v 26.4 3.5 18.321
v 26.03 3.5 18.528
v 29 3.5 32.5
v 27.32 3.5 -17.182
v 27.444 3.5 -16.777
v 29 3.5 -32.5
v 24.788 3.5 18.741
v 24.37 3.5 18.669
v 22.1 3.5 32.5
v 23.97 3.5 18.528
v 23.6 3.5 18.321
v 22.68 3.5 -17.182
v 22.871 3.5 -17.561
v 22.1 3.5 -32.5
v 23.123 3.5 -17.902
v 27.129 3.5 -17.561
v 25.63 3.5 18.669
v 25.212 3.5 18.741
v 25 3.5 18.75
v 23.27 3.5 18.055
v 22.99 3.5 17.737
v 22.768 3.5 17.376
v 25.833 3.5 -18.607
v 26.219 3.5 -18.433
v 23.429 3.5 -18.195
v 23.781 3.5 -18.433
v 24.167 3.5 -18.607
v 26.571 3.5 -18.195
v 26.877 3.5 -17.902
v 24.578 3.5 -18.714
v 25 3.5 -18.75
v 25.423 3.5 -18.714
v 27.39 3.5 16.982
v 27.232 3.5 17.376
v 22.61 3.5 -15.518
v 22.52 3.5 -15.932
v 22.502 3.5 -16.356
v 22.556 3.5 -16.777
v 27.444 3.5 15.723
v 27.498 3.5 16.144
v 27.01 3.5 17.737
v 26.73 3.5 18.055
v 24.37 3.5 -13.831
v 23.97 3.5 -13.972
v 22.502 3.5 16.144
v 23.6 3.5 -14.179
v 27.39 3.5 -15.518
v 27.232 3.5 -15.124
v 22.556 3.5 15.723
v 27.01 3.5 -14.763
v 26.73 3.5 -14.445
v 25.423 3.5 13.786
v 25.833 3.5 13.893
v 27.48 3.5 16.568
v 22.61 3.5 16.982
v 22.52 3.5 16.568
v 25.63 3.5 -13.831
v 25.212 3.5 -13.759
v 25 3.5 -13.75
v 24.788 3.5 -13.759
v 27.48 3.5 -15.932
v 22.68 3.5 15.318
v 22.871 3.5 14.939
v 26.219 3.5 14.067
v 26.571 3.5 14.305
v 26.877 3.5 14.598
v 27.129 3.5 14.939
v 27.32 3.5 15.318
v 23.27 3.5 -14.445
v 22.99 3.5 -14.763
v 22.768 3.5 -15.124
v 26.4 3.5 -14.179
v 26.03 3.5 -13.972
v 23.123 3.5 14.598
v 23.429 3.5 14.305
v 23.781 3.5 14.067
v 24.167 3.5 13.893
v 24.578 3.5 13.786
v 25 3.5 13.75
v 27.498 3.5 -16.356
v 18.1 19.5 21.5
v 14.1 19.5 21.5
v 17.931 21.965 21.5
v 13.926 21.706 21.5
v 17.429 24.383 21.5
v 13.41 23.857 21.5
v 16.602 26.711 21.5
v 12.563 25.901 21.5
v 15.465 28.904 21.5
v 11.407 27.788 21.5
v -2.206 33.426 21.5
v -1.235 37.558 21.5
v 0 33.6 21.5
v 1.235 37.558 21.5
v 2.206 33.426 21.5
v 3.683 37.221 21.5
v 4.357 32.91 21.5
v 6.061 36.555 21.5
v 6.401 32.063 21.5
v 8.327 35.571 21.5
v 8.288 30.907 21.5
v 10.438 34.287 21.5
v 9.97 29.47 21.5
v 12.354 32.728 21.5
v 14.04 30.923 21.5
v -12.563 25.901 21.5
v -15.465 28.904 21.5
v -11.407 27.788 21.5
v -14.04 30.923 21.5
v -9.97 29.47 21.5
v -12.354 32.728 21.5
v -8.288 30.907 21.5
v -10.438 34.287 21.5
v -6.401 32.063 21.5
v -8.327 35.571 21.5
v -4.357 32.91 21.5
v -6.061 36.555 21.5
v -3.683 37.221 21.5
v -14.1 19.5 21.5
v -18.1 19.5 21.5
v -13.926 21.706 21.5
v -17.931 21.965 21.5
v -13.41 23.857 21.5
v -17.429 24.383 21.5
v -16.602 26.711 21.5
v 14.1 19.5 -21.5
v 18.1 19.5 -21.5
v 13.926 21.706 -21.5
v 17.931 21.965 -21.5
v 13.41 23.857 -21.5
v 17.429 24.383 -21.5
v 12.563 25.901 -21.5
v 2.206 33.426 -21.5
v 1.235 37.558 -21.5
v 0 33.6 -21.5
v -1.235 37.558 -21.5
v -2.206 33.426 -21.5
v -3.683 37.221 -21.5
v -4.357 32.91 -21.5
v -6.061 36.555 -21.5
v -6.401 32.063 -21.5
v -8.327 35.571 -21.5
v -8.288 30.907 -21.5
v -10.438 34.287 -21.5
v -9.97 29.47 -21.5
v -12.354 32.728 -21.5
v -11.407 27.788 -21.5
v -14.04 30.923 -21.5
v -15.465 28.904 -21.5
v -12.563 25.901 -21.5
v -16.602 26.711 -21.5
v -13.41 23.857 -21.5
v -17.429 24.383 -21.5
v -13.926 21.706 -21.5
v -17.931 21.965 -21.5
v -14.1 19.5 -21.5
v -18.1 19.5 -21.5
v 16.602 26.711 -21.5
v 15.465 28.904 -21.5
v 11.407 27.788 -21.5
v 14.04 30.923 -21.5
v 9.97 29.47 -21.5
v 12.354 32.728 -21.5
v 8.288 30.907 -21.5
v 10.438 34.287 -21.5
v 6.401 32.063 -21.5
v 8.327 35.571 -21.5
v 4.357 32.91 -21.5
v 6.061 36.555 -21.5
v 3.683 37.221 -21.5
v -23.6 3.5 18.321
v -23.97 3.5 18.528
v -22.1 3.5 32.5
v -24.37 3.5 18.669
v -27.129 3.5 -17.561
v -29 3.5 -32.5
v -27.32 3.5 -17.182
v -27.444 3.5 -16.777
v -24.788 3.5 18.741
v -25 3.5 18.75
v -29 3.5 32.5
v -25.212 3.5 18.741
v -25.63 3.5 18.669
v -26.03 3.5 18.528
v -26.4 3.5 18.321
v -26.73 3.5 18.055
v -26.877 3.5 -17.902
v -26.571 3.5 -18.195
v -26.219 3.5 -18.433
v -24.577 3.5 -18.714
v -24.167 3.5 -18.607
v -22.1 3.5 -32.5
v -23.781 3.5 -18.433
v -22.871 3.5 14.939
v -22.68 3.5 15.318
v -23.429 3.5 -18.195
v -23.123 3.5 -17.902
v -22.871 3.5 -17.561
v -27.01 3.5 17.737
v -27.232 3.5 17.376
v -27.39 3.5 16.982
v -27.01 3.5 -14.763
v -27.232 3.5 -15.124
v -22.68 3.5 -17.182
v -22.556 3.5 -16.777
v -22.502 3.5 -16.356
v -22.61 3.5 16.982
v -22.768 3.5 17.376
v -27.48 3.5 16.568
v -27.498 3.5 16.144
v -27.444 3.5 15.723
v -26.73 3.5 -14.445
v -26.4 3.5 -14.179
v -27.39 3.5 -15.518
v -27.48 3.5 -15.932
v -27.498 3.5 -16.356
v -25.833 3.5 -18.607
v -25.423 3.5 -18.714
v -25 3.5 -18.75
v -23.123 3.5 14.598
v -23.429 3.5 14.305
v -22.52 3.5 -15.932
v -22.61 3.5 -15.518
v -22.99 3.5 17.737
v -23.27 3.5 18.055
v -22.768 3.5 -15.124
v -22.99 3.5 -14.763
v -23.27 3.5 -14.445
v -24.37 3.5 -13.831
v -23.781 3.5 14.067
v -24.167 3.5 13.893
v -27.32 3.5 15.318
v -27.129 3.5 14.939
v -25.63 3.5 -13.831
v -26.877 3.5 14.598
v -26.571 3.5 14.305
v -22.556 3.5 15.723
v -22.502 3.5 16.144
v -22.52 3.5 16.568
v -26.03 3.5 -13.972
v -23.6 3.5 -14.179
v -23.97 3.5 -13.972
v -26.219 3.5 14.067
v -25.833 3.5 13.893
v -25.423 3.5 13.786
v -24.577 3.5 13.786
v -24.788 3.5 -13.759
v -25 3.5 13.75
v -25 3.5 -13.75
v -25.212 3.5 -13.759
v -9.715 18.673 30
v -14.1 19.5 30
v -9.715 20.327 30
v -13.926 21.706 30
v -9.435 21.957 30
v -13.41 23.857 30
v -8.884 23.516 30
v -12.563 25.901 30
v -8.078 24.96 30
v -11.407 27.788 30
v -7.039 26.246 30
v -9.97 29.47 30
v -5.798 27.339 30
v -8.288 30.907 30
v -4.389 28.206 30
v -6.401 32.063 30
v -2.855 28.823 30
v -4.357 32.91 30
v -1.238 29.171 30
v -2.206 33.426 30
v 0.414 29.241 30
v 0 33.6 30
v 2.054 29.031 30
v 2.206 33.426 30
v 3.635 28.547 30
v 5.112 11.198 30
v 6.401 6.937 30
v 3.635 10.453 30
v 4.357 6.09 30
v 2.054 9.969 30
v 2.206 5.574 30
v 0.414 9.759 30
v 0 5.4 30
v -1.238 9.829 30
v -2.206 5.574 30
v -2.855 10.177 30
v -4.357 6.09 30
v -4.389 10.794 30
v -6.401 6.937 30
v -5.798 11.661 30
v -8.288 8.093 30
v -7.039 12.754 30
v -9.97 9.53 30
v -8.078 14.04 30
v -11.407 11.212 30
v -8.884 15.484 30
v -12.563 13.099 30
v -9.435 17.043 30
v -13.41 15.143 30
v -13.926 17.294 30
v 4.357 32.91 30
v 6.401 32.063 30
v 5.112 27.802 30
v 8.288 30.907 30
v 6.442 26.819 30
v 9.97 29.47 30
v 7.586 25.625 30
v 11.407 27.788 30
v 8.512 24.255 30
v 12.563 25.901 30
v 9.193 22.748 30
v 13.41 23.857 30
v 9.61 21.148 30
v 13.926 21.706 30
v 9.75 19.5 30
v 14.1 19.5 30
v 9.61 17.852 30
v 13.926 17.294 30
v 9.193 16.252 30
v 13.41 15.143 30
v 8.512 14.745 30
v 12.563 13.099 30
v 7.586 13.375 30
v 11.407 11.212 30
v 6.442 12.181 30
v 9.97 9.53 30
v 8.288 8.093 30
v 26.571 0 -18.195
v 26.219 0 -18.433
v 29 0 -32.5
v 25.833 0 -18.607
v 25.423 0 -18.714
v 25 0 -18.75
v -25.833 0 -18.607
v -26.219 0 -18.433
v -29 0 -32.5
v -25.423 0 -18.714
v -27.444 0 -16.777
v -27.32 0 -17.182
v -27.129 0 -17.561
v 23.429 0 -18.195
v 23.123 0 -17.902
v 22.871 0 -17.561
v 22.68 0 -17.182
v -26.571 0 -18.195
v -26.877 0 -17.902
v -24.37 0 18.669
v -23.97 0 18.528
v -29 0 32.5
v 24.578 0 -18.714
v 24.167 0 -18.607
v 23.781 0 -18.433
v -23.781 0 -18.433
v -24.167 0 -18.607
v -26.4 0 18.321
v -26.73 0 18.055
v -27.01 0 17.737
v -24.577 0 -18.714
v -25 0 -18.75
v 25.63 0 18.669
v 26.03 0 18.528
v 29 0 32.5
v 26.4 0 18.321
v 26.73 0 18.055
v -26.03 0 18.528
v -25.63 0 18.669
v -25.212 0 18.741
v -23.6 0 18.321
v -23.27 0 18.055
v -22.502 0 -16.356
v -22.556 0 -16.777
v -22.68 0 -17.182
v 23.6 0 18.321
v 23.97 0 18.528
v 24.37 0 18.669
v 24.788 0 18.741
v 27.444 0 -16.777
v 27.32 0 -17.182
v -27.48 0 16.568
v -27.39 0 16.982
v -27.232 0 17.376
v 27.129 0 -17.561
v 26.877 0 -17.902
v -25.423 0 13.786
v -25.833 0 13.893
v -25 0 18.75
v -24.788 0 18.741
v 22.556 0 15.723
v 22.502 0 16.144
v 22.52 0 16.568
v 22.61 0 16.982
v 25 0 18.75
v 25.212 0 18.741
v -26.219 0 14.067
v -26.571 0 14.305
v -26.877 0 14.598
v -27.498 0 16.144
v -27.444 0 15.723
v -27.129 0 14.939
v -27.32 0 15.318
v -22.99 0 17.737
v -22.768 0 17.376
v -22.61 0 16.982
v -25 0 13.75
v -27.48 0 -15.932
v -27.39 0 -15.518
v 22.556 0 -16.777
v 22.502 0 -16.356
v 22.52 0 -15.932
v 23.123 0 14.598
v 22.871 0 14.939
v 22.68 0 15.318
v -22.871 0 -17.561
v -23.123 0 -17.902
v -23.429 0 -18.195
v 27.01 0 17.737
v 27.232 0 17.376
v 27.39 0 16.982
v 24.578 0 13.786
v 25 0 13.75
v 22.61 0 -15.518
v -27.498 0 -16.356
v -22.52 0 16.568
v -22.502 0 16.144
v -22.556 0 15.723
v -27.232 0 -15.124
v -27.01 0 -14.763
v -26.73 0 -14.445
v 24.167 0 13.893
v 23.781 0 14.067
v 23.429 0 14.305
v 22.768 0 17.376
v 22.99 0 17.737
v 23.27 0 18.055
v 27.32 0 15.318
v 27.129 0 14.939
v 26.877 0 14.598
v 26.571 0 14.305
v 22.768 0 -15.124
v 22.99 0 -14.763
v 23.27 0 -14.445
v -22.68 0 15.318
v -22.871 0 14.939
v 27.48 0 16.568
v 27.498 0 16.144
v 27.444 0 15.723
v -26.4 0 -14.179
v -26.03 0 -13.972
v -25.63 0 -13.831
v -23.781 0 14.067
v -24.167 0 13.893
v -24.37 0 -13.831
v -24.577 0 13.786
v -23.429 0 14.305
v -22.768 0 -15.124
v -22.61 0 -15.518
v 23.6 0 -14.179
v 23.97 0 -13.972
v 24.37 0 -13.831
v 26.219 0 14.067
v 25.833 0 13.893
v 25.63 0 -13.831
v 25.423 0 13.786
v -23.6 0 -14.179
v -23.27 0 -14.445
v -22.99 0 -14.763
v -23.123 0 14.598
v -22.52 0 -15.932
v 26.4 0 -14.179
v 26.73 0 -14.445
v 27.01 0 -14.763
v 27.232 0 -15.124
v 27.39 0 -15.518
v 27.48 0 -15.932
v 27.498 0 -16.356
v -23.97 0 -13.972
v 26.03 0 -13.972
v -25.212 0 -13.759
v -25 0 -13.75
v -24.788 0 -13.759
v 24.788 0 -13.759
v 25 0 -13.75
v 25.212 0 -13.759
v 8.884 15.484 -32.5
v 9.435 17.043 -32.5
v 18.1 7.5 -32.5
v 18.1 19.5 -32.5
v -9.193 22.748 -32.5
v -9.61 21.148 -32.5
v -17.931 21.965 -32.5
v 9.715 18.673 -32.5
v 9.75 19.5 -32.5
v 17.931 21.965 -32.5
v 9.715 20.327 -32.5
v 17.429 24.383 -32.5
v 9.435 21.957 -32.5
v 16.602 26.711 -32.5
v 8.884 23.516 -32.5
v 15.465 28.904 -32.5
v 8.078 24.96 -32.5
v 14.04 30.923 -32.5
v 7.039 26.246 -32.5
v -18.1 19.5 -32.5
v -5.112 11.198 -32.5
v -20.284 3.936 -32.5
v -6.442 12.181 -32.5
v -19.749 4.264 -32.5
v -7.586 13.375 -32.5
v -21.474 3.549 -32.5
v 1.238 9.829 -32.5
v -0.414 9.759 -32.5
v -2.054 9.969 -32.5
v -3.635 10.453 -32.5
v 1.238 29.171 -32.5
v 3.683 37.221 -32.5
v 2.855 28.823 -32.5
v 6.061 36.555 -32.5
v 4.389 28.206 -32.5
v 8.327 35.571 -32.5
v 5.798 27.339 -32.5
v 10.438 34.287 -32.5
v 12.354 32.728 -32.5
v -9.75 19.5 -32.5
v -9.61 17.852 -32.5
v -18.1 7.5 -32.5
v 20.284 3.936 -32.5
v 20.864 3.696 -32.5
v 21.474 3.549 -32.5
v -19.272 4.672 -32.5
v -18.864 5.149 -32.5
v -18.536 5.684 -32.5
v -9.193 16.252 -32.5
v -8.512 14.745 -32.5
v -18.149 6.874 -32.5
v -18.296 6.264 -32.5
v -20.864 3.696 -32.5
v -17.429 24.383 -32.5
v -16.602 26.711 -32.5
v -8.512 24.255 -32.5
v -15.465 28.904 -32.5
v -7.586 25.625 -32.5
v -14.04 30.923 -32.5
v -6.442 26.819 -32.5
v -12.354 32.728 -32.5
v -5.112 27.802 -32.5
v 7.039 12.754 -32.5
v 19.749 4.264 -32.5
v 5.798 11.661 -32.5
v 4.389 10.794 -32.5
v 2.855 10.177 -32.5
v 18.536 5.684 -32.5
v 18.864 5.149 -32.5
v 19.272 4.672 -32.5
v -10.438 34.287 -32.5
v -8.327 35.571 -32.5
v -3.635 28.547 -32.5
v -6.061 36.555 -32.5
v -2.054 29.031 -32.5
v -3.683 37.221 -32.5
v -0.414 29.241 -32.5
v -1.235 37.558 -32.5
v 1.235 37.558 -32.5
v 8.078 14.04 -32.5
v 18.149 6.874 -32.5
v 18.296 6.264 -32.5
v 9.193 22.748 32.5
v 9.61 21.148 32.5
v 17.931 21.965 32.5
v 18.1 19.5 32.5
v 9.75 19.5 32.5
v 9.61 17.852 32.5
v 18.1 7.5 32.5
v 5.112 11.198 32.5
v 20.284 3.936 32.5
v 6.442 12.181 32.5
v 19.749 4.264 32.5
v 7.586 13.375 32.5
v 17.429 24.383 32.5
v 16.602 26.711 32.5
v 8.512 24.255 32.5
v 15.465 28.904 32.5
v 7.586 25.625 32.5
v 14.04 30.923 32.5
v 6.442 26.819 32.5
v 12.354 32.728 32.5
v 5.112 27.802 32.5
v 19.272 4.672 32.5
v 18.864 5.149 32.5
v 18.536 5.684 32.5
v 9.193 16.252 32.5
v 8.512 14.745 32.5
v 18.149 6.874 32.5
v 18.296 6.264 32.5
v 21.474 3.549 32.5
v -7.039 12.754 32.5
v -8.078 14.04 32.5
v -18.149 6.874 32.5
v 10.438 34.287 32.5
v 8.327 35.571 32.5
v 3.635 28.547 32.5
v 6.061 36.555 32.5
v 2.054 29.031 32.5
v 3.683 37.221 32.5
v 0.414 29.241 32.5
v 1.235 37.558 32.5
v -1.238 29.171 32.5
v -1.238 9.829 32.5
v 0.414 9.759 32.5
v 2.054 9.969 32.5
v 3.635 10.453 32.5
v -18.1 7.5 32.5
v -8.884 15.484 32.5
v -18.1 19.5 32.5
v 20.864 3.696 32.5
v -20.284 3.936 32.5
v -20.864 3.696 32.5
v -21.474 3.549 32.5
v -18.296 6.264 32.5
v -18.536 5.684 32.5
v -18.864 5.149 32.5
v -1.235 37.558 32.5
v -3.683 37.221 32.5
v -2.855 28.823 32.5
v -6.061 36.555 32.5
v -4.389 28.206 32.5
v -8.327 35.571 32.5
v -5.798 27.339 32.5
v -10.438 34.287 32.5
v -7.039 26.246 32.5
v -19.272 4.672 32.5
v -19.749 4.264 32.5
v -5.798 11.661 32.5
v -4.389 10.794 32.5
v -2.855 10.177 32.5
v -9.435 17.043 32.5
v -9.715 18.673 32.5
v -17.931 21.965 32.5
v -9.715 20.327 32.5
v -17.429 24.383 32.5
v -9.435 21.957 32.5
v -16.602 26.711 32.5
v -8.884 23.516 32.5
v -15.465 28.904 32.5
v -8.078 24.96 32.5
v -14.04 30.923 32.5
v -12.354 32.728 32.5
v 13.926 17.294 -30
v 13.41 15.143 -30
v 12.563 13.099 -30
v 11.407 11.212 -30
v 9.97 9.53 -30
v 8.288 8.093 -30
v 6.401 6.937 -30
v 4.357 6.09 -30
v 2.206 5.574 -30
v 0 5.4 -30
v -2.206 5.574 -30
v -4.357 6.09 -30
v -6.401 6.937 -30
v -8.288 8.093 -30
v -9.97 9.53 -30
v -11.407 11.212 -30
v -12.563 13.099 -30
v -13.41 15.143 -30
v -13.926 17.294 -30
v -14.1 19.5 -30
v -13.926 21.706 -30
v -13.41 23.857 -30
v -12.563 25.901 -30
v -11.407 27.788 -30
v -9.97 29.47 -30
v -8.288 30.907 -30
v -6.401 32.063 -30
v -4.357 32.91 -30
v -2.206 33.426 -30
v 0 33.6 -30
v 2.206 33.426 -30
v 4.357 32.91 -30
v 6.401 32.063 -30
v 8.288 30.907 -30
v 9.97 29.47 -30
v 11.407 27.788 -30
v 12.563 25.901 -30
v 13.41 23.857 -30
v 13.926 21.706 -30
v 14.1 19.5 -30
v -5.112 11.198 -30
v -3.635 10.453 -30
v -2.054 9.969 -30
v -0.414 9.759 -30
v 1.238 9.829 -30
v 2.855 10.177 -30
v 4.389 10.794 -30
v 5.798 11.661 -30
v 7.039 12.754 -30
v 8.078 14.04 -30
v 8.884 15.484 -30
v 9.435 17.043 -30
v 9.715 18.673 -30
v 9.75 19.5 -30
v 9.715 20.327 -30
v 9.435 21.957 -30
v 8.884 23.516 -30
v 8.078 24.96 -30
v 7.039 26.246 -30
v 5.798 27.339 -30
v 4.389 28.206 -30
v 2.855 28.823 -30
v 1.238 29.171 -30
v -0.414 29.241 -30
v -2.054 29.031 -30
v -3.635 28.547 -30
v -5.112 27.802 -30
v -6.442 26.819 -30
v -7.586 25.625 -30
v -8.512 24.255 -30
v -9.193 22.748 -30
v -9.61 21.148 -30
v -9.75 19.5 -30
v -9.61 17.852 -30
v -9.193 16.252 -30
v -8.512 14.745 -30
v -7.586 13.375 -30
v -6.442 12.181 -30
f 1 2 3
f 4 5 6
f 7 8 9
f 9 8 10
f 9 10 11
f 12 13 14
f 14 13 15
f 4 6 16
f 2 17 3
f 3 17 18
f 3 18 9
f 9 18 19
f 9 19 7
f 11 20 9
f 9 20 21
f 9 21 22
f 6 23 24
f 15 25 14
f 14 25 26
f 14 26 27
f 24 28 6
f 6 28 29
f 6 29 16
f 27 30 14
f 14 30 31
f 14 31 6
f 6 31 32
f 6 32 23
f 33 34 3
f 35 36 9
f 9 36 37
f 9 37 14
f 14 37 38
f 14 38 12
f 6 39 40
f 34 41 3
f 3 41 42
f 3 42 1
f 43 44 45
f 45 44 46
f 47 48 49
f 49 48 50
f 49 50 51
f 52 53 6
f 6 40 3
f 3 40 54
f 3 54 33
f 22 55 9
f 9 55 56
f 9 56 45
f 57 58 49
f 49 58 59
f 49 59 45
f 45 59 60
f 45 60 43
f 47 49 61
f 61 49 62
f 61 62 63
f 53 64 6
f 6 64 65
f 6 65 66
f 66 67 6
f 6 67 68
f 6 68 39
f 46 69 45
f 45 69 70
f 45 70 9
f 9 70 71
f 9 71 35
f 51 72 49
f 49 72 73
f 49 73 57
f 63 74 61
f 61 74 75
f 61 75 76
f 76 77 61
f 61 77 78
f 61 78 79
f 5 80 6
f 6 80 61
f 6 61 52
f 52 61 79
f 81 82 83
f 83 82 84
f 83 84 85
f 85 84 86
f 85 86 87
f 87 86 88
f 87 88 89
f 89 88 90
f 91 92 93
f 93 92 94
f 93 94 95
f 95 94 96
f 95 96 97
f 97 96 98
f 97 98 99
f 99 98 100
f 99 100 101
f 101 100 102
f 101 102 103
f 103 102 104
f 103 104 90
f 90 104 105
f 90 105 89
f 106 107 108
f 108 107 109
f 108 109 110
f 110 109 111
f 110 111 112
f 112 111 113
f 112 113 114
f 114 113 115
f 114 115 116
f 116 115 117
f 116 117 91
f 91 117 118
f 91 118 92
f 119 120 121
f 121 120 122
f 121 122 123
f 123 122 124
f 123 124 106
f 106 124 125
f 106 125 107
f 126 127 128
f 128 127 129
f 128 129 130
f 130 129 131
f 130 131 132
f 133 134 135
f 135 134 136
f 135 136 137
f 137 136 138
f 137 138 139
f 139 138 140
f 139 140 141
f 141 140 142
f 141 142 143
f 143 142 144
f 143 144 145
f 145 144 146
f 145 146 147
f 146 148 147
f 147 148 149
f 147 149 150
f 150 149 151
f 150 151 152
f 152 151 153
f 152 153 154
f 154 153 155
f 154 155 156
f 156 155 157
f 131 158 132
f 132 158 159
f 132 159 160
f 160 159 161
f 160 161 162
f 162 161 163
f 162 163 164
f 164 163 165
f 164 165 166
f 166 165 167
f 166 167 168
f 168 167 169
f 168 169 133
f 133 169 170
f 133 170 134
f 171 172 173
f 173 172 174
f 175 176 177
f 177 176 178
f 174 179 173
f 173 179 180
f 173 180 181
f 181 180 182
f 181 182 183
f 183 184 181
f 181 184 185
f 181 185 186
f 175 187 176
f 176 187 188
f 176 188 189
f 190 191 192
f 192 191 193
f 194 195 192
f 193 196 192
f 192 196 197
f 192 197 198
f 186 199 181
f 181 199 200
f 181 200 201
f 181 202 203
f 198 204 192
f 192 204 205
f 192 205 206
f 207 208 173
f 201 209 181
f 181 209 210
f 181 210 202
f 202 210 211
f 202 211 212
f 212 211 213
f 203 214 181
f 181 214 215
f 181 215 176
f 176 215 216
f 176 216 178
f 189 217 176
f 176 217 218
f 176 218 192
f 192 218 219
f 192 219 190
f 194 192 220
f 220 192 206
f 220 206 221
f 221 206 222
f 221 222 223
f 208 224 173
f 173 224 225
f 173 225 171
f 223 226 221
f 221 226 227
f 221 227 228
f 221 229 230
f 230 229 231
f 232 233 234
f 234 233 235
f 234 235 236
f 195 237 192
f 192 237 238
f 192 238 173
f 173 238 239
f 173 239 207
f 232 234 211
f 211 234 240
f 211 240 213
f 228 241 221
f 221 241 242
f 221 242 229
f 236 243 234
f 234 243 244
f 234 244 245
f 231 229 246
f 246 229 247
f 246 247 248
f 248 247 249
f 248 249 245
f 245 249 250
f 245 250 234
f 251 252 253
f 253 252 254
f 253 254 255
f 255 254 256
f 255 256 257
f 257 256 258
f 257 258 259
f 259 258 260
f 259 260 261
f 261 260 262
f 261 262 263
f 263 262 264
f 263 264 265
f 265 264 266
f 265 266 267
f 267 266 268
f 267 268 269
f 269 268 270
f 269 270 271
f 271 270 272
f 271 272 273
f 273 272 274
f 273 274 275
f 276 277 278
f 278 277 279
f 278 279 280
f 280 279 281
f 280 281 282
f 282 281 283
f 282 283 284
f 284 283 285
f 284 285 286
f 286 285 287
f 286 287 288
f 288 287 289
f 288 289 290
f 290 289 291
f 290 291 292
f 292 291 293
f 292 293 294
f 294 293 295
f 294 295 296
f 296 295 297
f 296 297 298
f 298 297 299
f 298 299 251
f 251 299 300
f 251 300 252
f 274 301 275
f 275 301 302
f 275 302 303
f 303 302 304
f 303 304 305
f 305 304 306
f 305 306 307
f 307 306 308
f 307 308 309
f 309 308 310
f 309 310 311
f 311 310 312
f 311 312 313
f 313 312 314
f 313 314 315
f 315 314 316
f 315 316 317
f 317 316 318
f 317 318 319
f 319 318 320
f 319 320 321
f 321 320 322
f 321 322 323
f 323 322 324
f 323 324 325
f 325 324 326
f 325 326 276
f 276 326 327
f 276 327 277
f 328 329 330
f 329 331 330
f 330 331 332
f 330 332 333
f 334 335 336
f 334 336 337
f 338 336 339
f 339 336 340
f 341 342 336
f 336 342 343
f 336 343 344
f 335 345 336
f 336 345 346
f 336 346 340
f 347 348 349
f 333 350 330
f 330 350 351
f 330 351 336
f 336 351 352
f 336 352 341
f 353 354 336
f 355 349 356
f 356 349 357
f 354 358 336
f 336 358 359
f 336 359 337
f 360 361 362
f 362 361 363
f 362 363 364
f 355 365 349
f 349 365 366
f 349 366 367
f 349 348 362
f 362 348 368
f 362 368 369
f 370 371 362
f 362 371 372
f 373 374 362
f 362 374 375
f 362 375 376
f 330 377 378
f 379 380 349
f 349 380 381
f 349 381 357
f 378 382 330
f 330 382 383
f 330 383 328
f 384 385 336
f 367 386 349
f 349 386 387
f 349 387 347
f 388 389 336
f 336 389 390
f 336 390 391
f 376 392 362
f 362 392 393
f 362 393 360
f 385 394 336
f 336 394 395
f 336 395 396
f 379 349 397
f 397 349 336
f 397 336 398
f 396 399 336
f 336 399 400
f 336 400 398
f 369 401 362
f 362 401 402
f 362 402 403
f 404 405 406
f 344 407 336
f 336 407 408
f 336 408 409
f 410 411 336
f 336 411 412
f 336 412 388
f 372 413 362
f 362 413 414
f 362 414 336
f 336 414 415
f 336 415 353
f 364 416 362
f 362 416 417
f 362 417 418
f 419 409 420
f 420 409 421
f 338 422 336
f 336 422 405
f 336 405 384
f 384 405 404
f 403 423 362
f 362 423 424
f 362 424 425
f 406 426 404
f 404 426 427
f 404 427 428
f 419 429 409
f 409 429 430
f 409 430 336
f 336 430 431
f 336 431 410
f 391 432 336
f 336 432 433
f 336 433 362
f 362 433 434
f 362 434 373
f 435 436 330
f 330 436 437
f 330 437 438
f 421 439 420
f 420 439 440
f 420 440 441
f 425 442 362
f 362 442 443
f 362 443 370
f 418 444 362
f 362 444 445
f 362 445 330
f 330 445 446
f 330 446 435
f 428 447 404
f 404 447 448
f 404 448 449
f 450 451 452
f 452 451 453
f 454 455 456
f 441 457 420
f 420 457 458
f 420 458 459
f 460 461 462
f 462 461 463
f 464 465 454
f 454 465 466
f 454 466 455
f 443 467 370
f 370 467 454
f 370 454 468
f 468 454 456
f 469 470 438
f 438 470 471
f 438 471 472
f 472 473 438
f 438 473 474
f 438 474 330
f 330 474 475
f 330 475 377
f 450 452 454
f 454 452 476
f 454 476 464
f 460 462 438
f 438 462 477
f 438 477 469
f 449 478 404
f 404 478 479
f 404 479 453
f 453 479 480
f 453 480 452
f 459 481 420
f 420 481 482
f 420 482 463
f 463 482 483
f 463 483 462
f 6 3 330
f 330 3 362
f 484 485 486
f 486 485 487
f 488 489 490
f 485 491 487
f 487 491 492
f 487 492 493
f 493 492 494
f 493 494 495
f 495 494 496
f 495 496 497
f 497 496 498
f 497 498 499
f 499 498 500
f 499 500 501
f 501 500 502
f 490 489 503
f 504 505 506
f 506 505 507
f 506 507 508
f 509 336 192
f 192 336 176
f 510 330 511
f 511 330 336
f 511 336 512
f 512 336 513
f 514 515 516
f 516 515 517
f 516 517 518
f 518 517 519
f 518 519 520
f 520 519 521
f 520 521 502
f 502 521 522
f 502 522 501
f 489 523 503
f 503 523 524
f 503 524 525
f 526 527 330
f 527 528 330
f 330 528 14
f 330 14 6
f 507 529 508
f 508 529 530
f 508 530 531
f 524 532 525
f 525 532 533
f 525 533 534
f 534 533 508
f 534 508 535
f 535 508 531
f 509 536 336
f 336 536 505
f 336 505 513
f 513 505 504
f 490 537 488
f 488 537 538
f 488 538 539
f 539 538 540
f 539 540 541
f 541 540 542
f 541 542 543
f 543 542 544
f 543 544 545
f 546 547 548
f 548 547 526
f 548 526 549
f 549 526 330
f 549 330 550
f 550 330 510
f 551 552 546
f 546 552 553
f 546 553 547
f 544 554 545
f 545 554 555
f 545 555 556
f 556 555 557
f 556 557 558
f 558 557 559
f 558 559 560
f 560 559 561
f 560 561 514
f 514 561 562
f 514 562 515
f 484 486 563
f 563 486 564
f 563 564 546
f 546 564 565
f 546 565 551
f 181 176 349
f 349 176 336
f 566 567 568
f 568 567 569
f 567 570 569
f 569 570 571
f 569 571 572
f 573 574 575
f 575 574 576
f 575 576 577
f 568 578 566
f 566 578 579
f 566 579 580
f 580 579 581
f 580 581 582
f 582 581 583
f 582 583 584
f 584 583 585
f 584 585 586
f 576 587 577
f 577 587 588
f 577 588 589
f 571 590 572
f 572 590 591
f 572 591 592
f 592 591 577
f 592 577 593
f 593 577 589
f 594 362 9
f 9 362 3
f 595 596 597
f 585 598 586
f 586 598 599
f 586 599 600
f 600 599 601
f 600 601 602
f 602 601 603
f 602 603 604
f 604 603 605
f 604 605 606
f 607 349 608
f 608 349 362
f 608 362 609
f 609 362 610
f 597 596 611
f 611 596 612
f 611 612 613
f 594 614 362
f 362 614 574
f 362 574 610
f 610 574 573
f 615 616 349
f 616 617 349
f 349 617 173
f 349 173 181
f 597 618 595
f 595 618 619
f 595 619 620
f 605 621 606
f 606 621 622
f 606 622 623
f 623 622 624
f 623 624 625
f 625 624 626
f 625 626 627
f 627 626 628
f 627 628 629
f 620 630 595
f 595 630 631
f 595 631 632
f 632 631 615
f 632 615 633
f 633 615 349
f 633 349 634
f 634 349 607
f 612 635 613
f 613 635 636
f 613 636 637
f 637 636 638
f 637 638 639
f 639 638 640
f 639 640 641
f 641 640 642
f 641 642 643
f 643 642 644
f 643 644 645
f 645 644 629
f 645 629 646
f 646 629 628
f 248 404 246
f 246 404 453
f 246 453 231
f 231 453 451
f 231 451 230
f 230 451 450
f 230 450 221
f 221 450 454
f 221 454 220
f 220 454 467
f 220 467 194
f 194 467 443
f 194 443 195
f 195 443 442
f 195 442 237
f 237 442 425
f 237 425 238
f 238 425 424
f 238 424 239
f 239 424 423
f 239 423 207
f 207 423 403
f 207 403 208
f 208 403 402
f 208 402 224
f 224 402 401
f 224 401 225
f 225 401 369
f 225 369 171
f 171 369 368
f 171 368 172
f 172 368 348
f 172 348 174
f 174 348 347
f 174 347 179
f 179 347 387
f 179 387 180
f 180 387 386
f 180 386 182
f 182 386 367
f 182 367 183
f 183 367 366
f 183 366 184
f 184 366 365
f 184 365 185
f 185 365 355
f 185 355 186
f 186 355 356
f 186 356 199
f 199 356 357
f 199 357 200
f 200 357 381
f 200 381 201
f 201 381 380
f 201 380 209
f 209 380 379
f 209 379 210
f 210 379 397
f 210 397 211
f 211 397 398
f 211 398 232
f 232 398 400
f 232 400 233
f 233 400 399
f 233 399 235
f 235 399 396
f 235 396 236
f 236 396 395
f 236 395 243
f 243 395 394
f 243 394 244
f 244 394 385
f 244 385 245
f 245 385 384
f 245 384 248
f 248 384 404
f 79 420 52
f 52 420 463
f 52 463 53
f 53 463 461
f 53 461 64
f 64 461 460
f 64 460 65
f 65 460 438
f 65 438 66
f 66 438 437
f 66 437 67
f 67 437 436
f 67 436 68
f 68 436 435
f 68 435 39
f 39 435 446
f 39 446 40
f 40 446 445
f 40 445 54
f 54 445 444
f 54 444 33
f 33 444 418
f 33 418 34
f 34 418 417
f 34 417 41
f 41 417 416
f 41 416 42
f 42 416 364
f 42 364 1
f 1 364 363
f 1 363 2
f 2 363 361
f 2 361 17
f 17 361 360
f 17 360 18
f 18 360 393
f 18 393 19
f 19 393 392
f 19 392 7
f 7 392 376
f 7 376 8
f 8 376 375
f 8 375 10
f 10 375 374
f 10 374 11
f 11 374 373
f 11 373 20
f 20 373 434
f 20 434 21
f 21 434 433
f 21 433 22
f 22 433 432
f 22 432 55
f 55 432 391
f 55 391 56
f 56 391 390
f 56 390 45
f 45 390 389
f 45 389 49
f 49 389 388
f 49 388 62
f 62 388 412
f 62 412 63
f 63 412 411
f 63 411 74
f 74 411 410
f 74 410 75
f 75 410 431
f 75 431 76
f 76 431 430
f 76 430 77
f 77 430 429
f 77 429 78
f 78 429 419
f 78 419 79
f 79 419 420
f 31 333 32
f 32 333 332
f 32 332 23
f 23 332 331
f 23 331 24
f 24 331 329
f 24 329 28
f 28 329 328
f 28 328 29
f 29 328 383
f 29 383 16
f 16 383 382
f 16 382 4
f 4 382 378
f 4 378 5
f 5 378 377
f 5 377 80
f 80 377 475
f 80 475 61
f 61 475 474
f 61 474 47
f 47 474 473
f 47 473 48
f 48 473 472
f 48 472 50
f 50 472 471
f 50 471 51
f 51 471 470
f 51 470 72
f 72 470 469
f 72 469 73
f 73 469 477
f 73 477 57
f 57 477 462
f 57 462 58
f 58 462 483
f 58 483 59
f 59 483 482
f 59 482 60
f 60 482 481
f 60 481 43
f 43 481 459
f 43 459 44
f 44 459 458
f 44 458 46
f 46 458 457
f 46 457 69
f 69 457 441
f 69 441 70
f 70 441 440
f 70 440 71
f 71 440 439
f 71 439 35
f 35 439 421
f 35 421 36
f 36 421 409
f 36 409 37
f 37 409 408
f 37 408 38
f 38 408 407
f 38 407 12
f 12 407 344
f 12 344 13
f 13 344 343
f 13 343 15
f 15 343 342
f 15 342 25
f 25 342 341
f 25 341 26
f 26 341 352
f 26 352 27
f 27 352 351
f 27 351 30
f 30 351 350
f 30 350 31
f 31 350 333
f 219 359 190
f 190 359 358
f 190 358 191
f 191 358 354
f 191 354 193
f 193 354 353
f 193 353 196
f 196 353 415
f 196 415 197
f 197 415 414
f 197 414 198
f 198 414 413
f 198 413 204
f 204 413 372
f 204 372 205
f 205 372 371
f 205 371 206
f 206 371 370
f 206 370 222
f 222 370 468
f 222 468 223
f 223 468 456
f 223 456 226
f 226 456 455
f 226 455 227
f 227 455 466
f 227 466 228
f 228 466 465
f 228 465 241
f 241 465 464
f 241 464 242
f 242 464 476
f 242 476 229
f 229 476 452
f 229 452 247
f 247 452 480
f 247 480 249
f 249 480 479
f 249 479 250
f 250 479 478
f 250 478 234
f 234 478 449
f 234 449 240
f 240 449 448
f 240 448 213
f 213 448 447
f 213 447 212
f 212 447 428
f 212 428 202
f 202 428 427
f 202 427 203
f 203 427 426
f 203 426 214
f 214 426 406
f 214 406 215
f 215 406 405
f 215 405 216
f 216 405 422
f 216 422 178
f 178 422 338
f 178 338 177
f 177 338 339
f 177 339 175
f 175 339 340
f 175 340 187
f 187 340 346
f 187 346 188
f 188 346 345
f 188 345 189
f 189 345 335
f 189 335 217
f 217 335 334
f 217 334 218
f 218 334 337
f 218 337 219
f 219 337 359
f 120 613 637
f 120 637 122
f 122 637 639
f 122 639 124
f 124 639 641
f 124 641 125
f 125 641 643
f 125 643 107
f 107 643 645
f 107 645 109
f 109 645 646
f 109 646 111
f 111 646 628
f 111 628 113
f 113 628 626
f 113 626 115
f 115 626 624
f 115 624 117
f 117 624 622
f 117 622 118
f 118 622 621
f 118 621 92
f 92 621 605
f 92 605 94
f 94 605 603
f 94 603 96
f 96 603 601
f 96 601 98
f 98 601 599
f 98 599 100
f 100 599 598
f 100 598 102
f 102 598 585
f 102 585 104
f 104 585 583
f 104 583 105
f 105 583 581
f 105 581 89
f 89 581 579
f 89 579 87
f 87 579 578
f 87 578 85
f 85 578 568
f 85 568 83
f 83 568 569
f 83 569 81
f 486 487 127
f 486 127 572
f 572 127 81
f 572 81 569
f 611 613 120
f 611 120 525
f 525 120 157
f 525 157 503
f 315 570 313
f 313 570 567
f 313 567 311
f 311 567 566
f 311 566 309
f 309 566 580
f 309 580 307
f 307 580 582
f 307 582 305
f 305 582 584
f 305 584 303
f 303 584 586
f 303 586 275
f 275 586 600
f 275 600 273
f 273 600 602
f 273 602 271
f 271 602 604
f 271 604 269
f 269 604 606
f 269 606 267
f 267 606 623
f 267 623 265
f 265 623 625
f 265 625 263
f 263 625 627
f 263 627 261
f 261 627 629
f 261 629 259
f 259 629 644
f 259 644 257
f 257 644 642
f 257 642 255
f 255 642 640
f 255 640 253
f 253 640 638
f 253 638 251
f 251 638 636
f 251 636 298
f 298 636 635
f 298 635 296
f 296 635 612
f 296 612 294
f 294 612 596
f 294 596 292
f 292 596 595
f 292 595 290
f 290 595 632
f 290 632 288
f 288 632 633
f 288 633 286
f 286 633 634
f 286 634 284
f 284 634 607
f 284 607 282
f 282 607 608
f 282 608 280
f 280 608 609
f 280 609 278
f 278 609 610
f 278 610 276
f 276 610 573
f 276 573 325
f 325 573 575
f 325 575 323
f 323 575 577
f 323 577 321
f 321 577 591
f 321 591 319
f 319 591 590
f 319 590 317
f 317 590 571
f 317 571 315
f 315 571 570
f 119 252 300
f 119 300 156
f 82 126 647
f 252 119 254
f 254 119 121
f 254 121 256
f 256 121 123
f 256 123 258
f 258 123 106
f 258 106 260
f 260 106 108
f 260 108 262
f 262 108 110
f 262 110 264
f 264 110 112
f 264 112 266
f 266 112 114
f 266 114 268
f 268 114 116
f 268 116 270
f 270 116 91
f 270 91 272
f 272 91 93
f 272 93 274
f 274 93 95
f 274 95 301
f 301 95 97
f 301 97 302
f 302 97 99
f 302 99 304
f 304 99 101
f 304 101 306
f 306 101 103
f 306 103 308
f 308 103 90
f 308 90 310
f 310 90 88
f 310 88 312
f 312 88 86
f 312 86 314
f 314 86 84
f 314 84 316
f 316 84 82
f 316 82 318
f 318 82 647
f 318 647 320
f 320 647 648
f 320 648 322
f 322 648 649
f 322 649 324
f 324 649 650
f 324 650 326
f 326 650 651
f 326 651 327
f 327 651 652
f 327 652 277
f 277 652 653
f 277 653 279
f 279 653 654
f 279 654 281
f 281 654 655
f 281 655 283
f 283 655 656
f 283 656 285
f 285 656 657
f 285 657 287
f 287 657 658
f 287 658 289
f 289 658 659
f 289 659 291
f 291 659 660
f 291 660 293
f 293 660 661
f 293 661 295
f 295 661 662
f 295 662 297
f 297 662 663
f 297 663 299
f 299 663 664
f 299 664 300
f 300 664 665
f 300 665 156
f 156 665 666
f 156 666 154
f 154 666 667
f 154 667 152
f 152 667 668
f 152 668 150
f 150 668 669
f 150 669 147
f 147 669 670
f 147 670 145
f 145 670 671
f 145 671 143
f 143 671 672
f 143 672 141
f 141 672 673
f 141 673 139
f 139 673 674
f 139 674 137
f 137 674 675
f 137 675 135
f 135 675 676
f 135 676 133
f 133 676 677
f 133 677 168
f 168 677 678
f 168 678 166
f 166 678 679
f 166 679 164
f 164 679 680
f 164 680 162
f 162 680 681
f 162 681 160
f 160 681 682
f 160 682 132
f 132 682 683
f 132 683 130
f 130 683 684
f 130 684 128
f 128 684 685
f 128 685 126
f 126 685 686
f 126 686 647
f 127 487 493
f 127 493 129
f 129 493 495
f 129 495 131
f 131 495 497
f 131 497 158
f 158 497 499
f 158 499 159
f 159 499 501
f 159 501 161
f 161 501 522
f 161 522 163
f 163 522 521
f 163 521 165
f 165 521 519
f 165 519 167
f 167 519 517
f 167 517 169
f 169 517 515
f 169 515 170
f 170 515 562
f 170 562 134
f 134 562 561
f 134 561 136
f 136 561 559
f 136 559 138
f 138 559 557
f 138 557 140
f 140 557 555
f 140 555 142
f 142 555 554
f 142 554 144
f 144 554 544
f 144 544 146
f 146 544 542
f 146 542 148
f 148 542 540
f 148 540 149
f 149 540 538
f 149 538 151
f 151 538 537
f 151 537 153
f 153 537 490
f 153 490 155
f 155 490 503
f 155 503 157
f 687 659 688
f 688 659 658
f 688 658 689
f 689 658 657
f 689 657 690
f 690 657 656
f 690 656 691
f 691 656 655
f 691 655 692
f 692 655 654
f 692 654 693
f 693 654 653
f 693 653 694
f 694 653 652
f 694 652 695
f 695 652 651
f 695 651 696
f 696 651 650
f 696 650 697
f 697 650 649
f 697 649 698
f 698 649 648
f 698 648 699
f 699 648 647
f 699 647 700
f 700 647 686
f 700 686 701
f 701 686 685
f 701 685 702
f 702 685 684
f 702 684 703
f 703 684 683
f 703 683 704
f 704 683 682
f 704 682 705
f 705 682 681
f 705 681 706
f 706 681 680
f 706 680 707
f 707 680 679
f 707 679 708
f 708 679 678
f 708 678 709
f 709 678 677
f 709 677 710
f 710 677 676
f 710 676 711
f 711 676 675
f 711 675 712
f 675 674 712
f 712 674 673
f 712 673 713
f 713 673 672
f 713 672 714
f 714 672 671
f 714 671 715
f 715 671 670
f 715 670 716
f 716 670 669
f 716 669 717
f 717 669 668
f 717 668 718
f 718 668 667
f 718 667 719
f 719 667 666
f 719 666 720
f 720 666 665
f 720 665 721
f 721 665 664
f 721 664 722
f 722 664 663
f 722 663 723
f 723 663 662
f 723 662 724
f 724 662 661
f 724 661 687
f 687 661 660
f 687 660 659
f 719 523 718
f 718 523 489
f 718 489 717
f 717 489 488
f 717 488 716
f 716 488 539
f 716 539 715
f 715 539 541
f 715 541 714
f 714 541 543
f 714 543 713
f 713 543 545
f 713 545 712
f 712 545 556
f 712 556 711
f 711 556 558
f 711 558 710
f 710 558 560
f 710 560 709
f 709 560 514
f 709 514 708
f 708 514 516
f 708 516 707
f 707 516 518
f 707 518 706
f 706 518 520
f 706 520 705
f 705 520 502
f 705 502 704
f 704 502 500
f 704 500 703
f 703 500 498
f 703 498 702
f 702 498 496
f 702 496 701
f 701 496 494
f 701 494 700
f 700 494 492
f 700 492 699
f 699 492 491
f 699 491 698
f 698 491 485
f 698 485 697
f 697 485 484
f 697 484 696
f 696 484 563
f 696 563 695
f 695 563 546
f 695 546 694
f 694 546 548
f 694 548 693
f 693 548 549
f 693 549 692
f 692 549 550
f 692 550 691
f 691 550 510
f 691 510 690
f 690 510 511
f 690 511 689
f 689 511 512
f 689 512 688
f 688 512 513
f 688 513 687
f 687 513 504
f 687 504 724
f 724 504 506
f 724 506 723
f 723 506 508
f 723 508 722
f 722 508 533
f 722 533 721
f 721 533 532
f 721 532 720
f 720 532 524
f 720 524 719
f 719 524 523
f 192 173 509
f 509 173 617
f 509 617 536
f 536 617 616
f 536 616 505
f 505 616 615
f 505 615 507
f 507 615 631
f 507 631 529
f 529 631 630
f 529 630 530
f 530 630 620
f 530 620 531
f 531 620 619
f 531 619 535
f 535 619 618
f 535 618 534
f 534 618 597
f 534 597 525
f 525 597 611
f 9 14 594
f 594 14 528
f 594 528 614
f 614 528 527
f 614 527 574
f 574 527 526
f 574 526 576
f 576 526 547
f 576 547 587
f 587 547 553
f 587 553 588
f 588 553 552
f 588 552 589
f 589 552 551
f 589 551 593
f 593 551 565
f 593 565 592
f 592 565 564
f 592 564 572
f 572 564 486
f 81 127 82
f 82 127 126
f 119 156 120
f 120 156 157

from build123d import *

# Parameters (mm, degrees)
SKETCH1_W           = 58
SKETCH1_H           = 65
SKETCH1_R           = 2.5
BOSS_EXTRUDE1_DEPTH = 3.5
SKETCH2_R           = 14.1
SKETCH2_R_2         = 9.75
BOSS_EXTRUDE2_DEPTH = 2.5
SKETCH2_3_R         = 14.1
BOSS_EXTRUDE3_DEPTH = 11
BOSS_EXTRUDE4_START = -54
SKETCH2_4_R         = 14.1
BOSS_EXTRUDE4_DEPTH = 11
BOSS_EXTRUDE5_START = -62.5
SKETCH2_5_R         = 14.1
SKETCH2_5_R_2       = 9.75
BOSS_EXTRUDE5_DEPTH = 2.5
FILLET3_R           = 4
BOSS_EXTRUDE6_REACH = 73.908


with BuildPart() as part:
    # Sketch1 → Boss-Extrude1 (new body)
    with BuildSketch(Plane(origin=(0, 0, 0), x_dir=(1, 0, 0), z_dir=(0, 1, 0))):
        Rectangle(SKETCH1_W, SKETCH1_H)
        with Locations(Location((-25, -16.25, 0), (0, 0, 270))):
            Circle(SKETCH1_R, mode=Mode.SUBTRACT)
        with Locations(Location((25, -16.25, 0), (0, 0, 270))):
            Circle(SKETCH1_R, mode=Mode.SUBTRACT)
        with Locations(Location((25, 16.25, 0), (0, 0, 270))):
            Circle(SKETCH1_R, mode=Mode.SUBTRACT)
        with Locations(Location((-25, 16.25, 0), (0, 0, 270))):
            Circle(SKETCH1_R, mode=Mode.SUBTRACT)
    extrude(amount=BOSS_EXTRUDE1_DEPTH)

    # Sketch2 → Boss-Extrude2 (add)
    # profile 1 of 2: a face of its own
    with BuildSketch(Plane.XY.offset(32.5)):
        with BuildLine():
            ThreePointArc((18.1, 19.5), (0, 37.6), (-18.1, 19.5))
            Line((-18.1, 19.5), (-18.1, 3.5))
            Line((-18.1, 3.5), (18.1, 3.5))
            Line((18.1, 3.5), (18.1, 19.5))
        make_face()
        with Locations((0, 19.5)):
            Circle(SKETCH2_R, mode=Mode.SUBTRACT)
    # profile 2 of 2: a face of its own
    with BuildSketch(Plane.XY.offset(32.5)):
        with Locations((0, 19.5)):
            Circle(SKETCH2_R)
        with Locations((0, 19.5)):
            Circle(SKETCH2_R_2, mode=Mode.SUBTRACT)
    extrude(amount=-BOSS_EXTRUDE2_DEPTH)

    # Sketch2<3> → Boss-Extrude3 (add)
    with BuildSketch(Plane.XY.offset(32.5)):
        with BuildLine():
            ThreePointArc((18.1, 19.5), (0, 37.6), (-18.1, 19.5))
            Line((-18.1, 19.5), (-18.1, 3.5))
            Line((-18.1, 3.5), (18.1, 3.5))
            Line((18.1, 3.5), (18.1, 19.5))
        make_face()
        with Locations((0, 19.5)):
            Circle(SKETCH2_3_R, mode=Mode.SUBTRACT)
    extrude(amount=-BOSS_EXTRUDE3_DEPTH)

    # Sketch2<4> → Boss-Extrude4 (add)
    with BuildSketch(Plane.XY.offset(32.5).offset(BOSS_EXTRUDE4_START)):
        with BuildLine():
            ThreePointArc((18.1, 19.5), (0, 37.6), (-18.1, 19.5))
            Line((-18.1, 19.5), (-18.1, 3.5))
            Line((-18.1, 3.5), (-29, 3.5))
            Line((-29, 3.5), (-29, 0))
            Line((-29, 0), (29, 0))
            Line((29, 0), (29, 3.5))
            Line((29, 3.5), (18.1, 3.5))
            Line((18.1, 3.5), (18.1, 19.5))
        make_face()
        with Locations((0, 19.5)):
            Circle(SKETCH2_4_R, mode=Mode.SUBTRACT)
    extrude(amount=-BOSS_EXTRUDE4_DEPTH)

    # Sketch2<5> → Boss-Extrude5 (add)
    with BuildSketch(Plane.XY.offset(32.5).offset(BOSS_EXTRUDE5_START)):
        with Locations((0, 19.5)):
            Circle(SKETCH2_5_R)
        with Locations((0, 19.5)):
            Circle(SKETCH2_5_R_2, mode=Mode.SUBTRACT)
    extrude(amount=-BOSS_EXTRUDE5_DEPTH)

    # Fillet3
    fillet3_edges = [part.edges().sort_by_distance(p)[0] for p in [
        (18.1, 3.5, 27),
        (-18.1, 3.5, 27),
        (-18.1, 3.5, -27),
        (18.1, 3.5, -27),
    ]]
    fillet(fillet3_edges, radius=FILLET3_R)

    # Sketch6 → Boss-Extrude6 (add, up to next)
    with BuildSketch(Plane.XY.offset(-21.5), mode=Mode.PRIVATE) as boss_extrude6_sk1:
        with BuildLine():
            Line((-18.1, 7.5), (-18.1, 19.5))
            Line((-18.1, 19.5), (-14.1, 19.5))
            ThreePointArc((-14.1, 19.5), (0, 5.4), (14.1, 19.5))
            Line((14.1, 19.5), (18.1, 19.5))
            Line((18.1, 19.5), (18.1, 7.5))
            ThreePointArc((18.1, 7.5), (19.271572875, 4.671572875), (22.1, 3.5))
            Line((22.1, 3.5), (-22.1, 3.5))
            ThreePointArc((-22.1, 3.5), (-19.271572875, 4.671572875), (-18.1, 7.5))
        make_face()
    boss_extrude6_tool1 = extrude(boss_extrude6_sk1.sketch, amount=BOSS_EXTRUDE6_REACH, mode=Mode.PRIVATE) - part.part
    add(boss_extrude6_tool1.solids().sort_by_distance((-18.939185, 4.339185, -21.5))[0])


solid = part.part
